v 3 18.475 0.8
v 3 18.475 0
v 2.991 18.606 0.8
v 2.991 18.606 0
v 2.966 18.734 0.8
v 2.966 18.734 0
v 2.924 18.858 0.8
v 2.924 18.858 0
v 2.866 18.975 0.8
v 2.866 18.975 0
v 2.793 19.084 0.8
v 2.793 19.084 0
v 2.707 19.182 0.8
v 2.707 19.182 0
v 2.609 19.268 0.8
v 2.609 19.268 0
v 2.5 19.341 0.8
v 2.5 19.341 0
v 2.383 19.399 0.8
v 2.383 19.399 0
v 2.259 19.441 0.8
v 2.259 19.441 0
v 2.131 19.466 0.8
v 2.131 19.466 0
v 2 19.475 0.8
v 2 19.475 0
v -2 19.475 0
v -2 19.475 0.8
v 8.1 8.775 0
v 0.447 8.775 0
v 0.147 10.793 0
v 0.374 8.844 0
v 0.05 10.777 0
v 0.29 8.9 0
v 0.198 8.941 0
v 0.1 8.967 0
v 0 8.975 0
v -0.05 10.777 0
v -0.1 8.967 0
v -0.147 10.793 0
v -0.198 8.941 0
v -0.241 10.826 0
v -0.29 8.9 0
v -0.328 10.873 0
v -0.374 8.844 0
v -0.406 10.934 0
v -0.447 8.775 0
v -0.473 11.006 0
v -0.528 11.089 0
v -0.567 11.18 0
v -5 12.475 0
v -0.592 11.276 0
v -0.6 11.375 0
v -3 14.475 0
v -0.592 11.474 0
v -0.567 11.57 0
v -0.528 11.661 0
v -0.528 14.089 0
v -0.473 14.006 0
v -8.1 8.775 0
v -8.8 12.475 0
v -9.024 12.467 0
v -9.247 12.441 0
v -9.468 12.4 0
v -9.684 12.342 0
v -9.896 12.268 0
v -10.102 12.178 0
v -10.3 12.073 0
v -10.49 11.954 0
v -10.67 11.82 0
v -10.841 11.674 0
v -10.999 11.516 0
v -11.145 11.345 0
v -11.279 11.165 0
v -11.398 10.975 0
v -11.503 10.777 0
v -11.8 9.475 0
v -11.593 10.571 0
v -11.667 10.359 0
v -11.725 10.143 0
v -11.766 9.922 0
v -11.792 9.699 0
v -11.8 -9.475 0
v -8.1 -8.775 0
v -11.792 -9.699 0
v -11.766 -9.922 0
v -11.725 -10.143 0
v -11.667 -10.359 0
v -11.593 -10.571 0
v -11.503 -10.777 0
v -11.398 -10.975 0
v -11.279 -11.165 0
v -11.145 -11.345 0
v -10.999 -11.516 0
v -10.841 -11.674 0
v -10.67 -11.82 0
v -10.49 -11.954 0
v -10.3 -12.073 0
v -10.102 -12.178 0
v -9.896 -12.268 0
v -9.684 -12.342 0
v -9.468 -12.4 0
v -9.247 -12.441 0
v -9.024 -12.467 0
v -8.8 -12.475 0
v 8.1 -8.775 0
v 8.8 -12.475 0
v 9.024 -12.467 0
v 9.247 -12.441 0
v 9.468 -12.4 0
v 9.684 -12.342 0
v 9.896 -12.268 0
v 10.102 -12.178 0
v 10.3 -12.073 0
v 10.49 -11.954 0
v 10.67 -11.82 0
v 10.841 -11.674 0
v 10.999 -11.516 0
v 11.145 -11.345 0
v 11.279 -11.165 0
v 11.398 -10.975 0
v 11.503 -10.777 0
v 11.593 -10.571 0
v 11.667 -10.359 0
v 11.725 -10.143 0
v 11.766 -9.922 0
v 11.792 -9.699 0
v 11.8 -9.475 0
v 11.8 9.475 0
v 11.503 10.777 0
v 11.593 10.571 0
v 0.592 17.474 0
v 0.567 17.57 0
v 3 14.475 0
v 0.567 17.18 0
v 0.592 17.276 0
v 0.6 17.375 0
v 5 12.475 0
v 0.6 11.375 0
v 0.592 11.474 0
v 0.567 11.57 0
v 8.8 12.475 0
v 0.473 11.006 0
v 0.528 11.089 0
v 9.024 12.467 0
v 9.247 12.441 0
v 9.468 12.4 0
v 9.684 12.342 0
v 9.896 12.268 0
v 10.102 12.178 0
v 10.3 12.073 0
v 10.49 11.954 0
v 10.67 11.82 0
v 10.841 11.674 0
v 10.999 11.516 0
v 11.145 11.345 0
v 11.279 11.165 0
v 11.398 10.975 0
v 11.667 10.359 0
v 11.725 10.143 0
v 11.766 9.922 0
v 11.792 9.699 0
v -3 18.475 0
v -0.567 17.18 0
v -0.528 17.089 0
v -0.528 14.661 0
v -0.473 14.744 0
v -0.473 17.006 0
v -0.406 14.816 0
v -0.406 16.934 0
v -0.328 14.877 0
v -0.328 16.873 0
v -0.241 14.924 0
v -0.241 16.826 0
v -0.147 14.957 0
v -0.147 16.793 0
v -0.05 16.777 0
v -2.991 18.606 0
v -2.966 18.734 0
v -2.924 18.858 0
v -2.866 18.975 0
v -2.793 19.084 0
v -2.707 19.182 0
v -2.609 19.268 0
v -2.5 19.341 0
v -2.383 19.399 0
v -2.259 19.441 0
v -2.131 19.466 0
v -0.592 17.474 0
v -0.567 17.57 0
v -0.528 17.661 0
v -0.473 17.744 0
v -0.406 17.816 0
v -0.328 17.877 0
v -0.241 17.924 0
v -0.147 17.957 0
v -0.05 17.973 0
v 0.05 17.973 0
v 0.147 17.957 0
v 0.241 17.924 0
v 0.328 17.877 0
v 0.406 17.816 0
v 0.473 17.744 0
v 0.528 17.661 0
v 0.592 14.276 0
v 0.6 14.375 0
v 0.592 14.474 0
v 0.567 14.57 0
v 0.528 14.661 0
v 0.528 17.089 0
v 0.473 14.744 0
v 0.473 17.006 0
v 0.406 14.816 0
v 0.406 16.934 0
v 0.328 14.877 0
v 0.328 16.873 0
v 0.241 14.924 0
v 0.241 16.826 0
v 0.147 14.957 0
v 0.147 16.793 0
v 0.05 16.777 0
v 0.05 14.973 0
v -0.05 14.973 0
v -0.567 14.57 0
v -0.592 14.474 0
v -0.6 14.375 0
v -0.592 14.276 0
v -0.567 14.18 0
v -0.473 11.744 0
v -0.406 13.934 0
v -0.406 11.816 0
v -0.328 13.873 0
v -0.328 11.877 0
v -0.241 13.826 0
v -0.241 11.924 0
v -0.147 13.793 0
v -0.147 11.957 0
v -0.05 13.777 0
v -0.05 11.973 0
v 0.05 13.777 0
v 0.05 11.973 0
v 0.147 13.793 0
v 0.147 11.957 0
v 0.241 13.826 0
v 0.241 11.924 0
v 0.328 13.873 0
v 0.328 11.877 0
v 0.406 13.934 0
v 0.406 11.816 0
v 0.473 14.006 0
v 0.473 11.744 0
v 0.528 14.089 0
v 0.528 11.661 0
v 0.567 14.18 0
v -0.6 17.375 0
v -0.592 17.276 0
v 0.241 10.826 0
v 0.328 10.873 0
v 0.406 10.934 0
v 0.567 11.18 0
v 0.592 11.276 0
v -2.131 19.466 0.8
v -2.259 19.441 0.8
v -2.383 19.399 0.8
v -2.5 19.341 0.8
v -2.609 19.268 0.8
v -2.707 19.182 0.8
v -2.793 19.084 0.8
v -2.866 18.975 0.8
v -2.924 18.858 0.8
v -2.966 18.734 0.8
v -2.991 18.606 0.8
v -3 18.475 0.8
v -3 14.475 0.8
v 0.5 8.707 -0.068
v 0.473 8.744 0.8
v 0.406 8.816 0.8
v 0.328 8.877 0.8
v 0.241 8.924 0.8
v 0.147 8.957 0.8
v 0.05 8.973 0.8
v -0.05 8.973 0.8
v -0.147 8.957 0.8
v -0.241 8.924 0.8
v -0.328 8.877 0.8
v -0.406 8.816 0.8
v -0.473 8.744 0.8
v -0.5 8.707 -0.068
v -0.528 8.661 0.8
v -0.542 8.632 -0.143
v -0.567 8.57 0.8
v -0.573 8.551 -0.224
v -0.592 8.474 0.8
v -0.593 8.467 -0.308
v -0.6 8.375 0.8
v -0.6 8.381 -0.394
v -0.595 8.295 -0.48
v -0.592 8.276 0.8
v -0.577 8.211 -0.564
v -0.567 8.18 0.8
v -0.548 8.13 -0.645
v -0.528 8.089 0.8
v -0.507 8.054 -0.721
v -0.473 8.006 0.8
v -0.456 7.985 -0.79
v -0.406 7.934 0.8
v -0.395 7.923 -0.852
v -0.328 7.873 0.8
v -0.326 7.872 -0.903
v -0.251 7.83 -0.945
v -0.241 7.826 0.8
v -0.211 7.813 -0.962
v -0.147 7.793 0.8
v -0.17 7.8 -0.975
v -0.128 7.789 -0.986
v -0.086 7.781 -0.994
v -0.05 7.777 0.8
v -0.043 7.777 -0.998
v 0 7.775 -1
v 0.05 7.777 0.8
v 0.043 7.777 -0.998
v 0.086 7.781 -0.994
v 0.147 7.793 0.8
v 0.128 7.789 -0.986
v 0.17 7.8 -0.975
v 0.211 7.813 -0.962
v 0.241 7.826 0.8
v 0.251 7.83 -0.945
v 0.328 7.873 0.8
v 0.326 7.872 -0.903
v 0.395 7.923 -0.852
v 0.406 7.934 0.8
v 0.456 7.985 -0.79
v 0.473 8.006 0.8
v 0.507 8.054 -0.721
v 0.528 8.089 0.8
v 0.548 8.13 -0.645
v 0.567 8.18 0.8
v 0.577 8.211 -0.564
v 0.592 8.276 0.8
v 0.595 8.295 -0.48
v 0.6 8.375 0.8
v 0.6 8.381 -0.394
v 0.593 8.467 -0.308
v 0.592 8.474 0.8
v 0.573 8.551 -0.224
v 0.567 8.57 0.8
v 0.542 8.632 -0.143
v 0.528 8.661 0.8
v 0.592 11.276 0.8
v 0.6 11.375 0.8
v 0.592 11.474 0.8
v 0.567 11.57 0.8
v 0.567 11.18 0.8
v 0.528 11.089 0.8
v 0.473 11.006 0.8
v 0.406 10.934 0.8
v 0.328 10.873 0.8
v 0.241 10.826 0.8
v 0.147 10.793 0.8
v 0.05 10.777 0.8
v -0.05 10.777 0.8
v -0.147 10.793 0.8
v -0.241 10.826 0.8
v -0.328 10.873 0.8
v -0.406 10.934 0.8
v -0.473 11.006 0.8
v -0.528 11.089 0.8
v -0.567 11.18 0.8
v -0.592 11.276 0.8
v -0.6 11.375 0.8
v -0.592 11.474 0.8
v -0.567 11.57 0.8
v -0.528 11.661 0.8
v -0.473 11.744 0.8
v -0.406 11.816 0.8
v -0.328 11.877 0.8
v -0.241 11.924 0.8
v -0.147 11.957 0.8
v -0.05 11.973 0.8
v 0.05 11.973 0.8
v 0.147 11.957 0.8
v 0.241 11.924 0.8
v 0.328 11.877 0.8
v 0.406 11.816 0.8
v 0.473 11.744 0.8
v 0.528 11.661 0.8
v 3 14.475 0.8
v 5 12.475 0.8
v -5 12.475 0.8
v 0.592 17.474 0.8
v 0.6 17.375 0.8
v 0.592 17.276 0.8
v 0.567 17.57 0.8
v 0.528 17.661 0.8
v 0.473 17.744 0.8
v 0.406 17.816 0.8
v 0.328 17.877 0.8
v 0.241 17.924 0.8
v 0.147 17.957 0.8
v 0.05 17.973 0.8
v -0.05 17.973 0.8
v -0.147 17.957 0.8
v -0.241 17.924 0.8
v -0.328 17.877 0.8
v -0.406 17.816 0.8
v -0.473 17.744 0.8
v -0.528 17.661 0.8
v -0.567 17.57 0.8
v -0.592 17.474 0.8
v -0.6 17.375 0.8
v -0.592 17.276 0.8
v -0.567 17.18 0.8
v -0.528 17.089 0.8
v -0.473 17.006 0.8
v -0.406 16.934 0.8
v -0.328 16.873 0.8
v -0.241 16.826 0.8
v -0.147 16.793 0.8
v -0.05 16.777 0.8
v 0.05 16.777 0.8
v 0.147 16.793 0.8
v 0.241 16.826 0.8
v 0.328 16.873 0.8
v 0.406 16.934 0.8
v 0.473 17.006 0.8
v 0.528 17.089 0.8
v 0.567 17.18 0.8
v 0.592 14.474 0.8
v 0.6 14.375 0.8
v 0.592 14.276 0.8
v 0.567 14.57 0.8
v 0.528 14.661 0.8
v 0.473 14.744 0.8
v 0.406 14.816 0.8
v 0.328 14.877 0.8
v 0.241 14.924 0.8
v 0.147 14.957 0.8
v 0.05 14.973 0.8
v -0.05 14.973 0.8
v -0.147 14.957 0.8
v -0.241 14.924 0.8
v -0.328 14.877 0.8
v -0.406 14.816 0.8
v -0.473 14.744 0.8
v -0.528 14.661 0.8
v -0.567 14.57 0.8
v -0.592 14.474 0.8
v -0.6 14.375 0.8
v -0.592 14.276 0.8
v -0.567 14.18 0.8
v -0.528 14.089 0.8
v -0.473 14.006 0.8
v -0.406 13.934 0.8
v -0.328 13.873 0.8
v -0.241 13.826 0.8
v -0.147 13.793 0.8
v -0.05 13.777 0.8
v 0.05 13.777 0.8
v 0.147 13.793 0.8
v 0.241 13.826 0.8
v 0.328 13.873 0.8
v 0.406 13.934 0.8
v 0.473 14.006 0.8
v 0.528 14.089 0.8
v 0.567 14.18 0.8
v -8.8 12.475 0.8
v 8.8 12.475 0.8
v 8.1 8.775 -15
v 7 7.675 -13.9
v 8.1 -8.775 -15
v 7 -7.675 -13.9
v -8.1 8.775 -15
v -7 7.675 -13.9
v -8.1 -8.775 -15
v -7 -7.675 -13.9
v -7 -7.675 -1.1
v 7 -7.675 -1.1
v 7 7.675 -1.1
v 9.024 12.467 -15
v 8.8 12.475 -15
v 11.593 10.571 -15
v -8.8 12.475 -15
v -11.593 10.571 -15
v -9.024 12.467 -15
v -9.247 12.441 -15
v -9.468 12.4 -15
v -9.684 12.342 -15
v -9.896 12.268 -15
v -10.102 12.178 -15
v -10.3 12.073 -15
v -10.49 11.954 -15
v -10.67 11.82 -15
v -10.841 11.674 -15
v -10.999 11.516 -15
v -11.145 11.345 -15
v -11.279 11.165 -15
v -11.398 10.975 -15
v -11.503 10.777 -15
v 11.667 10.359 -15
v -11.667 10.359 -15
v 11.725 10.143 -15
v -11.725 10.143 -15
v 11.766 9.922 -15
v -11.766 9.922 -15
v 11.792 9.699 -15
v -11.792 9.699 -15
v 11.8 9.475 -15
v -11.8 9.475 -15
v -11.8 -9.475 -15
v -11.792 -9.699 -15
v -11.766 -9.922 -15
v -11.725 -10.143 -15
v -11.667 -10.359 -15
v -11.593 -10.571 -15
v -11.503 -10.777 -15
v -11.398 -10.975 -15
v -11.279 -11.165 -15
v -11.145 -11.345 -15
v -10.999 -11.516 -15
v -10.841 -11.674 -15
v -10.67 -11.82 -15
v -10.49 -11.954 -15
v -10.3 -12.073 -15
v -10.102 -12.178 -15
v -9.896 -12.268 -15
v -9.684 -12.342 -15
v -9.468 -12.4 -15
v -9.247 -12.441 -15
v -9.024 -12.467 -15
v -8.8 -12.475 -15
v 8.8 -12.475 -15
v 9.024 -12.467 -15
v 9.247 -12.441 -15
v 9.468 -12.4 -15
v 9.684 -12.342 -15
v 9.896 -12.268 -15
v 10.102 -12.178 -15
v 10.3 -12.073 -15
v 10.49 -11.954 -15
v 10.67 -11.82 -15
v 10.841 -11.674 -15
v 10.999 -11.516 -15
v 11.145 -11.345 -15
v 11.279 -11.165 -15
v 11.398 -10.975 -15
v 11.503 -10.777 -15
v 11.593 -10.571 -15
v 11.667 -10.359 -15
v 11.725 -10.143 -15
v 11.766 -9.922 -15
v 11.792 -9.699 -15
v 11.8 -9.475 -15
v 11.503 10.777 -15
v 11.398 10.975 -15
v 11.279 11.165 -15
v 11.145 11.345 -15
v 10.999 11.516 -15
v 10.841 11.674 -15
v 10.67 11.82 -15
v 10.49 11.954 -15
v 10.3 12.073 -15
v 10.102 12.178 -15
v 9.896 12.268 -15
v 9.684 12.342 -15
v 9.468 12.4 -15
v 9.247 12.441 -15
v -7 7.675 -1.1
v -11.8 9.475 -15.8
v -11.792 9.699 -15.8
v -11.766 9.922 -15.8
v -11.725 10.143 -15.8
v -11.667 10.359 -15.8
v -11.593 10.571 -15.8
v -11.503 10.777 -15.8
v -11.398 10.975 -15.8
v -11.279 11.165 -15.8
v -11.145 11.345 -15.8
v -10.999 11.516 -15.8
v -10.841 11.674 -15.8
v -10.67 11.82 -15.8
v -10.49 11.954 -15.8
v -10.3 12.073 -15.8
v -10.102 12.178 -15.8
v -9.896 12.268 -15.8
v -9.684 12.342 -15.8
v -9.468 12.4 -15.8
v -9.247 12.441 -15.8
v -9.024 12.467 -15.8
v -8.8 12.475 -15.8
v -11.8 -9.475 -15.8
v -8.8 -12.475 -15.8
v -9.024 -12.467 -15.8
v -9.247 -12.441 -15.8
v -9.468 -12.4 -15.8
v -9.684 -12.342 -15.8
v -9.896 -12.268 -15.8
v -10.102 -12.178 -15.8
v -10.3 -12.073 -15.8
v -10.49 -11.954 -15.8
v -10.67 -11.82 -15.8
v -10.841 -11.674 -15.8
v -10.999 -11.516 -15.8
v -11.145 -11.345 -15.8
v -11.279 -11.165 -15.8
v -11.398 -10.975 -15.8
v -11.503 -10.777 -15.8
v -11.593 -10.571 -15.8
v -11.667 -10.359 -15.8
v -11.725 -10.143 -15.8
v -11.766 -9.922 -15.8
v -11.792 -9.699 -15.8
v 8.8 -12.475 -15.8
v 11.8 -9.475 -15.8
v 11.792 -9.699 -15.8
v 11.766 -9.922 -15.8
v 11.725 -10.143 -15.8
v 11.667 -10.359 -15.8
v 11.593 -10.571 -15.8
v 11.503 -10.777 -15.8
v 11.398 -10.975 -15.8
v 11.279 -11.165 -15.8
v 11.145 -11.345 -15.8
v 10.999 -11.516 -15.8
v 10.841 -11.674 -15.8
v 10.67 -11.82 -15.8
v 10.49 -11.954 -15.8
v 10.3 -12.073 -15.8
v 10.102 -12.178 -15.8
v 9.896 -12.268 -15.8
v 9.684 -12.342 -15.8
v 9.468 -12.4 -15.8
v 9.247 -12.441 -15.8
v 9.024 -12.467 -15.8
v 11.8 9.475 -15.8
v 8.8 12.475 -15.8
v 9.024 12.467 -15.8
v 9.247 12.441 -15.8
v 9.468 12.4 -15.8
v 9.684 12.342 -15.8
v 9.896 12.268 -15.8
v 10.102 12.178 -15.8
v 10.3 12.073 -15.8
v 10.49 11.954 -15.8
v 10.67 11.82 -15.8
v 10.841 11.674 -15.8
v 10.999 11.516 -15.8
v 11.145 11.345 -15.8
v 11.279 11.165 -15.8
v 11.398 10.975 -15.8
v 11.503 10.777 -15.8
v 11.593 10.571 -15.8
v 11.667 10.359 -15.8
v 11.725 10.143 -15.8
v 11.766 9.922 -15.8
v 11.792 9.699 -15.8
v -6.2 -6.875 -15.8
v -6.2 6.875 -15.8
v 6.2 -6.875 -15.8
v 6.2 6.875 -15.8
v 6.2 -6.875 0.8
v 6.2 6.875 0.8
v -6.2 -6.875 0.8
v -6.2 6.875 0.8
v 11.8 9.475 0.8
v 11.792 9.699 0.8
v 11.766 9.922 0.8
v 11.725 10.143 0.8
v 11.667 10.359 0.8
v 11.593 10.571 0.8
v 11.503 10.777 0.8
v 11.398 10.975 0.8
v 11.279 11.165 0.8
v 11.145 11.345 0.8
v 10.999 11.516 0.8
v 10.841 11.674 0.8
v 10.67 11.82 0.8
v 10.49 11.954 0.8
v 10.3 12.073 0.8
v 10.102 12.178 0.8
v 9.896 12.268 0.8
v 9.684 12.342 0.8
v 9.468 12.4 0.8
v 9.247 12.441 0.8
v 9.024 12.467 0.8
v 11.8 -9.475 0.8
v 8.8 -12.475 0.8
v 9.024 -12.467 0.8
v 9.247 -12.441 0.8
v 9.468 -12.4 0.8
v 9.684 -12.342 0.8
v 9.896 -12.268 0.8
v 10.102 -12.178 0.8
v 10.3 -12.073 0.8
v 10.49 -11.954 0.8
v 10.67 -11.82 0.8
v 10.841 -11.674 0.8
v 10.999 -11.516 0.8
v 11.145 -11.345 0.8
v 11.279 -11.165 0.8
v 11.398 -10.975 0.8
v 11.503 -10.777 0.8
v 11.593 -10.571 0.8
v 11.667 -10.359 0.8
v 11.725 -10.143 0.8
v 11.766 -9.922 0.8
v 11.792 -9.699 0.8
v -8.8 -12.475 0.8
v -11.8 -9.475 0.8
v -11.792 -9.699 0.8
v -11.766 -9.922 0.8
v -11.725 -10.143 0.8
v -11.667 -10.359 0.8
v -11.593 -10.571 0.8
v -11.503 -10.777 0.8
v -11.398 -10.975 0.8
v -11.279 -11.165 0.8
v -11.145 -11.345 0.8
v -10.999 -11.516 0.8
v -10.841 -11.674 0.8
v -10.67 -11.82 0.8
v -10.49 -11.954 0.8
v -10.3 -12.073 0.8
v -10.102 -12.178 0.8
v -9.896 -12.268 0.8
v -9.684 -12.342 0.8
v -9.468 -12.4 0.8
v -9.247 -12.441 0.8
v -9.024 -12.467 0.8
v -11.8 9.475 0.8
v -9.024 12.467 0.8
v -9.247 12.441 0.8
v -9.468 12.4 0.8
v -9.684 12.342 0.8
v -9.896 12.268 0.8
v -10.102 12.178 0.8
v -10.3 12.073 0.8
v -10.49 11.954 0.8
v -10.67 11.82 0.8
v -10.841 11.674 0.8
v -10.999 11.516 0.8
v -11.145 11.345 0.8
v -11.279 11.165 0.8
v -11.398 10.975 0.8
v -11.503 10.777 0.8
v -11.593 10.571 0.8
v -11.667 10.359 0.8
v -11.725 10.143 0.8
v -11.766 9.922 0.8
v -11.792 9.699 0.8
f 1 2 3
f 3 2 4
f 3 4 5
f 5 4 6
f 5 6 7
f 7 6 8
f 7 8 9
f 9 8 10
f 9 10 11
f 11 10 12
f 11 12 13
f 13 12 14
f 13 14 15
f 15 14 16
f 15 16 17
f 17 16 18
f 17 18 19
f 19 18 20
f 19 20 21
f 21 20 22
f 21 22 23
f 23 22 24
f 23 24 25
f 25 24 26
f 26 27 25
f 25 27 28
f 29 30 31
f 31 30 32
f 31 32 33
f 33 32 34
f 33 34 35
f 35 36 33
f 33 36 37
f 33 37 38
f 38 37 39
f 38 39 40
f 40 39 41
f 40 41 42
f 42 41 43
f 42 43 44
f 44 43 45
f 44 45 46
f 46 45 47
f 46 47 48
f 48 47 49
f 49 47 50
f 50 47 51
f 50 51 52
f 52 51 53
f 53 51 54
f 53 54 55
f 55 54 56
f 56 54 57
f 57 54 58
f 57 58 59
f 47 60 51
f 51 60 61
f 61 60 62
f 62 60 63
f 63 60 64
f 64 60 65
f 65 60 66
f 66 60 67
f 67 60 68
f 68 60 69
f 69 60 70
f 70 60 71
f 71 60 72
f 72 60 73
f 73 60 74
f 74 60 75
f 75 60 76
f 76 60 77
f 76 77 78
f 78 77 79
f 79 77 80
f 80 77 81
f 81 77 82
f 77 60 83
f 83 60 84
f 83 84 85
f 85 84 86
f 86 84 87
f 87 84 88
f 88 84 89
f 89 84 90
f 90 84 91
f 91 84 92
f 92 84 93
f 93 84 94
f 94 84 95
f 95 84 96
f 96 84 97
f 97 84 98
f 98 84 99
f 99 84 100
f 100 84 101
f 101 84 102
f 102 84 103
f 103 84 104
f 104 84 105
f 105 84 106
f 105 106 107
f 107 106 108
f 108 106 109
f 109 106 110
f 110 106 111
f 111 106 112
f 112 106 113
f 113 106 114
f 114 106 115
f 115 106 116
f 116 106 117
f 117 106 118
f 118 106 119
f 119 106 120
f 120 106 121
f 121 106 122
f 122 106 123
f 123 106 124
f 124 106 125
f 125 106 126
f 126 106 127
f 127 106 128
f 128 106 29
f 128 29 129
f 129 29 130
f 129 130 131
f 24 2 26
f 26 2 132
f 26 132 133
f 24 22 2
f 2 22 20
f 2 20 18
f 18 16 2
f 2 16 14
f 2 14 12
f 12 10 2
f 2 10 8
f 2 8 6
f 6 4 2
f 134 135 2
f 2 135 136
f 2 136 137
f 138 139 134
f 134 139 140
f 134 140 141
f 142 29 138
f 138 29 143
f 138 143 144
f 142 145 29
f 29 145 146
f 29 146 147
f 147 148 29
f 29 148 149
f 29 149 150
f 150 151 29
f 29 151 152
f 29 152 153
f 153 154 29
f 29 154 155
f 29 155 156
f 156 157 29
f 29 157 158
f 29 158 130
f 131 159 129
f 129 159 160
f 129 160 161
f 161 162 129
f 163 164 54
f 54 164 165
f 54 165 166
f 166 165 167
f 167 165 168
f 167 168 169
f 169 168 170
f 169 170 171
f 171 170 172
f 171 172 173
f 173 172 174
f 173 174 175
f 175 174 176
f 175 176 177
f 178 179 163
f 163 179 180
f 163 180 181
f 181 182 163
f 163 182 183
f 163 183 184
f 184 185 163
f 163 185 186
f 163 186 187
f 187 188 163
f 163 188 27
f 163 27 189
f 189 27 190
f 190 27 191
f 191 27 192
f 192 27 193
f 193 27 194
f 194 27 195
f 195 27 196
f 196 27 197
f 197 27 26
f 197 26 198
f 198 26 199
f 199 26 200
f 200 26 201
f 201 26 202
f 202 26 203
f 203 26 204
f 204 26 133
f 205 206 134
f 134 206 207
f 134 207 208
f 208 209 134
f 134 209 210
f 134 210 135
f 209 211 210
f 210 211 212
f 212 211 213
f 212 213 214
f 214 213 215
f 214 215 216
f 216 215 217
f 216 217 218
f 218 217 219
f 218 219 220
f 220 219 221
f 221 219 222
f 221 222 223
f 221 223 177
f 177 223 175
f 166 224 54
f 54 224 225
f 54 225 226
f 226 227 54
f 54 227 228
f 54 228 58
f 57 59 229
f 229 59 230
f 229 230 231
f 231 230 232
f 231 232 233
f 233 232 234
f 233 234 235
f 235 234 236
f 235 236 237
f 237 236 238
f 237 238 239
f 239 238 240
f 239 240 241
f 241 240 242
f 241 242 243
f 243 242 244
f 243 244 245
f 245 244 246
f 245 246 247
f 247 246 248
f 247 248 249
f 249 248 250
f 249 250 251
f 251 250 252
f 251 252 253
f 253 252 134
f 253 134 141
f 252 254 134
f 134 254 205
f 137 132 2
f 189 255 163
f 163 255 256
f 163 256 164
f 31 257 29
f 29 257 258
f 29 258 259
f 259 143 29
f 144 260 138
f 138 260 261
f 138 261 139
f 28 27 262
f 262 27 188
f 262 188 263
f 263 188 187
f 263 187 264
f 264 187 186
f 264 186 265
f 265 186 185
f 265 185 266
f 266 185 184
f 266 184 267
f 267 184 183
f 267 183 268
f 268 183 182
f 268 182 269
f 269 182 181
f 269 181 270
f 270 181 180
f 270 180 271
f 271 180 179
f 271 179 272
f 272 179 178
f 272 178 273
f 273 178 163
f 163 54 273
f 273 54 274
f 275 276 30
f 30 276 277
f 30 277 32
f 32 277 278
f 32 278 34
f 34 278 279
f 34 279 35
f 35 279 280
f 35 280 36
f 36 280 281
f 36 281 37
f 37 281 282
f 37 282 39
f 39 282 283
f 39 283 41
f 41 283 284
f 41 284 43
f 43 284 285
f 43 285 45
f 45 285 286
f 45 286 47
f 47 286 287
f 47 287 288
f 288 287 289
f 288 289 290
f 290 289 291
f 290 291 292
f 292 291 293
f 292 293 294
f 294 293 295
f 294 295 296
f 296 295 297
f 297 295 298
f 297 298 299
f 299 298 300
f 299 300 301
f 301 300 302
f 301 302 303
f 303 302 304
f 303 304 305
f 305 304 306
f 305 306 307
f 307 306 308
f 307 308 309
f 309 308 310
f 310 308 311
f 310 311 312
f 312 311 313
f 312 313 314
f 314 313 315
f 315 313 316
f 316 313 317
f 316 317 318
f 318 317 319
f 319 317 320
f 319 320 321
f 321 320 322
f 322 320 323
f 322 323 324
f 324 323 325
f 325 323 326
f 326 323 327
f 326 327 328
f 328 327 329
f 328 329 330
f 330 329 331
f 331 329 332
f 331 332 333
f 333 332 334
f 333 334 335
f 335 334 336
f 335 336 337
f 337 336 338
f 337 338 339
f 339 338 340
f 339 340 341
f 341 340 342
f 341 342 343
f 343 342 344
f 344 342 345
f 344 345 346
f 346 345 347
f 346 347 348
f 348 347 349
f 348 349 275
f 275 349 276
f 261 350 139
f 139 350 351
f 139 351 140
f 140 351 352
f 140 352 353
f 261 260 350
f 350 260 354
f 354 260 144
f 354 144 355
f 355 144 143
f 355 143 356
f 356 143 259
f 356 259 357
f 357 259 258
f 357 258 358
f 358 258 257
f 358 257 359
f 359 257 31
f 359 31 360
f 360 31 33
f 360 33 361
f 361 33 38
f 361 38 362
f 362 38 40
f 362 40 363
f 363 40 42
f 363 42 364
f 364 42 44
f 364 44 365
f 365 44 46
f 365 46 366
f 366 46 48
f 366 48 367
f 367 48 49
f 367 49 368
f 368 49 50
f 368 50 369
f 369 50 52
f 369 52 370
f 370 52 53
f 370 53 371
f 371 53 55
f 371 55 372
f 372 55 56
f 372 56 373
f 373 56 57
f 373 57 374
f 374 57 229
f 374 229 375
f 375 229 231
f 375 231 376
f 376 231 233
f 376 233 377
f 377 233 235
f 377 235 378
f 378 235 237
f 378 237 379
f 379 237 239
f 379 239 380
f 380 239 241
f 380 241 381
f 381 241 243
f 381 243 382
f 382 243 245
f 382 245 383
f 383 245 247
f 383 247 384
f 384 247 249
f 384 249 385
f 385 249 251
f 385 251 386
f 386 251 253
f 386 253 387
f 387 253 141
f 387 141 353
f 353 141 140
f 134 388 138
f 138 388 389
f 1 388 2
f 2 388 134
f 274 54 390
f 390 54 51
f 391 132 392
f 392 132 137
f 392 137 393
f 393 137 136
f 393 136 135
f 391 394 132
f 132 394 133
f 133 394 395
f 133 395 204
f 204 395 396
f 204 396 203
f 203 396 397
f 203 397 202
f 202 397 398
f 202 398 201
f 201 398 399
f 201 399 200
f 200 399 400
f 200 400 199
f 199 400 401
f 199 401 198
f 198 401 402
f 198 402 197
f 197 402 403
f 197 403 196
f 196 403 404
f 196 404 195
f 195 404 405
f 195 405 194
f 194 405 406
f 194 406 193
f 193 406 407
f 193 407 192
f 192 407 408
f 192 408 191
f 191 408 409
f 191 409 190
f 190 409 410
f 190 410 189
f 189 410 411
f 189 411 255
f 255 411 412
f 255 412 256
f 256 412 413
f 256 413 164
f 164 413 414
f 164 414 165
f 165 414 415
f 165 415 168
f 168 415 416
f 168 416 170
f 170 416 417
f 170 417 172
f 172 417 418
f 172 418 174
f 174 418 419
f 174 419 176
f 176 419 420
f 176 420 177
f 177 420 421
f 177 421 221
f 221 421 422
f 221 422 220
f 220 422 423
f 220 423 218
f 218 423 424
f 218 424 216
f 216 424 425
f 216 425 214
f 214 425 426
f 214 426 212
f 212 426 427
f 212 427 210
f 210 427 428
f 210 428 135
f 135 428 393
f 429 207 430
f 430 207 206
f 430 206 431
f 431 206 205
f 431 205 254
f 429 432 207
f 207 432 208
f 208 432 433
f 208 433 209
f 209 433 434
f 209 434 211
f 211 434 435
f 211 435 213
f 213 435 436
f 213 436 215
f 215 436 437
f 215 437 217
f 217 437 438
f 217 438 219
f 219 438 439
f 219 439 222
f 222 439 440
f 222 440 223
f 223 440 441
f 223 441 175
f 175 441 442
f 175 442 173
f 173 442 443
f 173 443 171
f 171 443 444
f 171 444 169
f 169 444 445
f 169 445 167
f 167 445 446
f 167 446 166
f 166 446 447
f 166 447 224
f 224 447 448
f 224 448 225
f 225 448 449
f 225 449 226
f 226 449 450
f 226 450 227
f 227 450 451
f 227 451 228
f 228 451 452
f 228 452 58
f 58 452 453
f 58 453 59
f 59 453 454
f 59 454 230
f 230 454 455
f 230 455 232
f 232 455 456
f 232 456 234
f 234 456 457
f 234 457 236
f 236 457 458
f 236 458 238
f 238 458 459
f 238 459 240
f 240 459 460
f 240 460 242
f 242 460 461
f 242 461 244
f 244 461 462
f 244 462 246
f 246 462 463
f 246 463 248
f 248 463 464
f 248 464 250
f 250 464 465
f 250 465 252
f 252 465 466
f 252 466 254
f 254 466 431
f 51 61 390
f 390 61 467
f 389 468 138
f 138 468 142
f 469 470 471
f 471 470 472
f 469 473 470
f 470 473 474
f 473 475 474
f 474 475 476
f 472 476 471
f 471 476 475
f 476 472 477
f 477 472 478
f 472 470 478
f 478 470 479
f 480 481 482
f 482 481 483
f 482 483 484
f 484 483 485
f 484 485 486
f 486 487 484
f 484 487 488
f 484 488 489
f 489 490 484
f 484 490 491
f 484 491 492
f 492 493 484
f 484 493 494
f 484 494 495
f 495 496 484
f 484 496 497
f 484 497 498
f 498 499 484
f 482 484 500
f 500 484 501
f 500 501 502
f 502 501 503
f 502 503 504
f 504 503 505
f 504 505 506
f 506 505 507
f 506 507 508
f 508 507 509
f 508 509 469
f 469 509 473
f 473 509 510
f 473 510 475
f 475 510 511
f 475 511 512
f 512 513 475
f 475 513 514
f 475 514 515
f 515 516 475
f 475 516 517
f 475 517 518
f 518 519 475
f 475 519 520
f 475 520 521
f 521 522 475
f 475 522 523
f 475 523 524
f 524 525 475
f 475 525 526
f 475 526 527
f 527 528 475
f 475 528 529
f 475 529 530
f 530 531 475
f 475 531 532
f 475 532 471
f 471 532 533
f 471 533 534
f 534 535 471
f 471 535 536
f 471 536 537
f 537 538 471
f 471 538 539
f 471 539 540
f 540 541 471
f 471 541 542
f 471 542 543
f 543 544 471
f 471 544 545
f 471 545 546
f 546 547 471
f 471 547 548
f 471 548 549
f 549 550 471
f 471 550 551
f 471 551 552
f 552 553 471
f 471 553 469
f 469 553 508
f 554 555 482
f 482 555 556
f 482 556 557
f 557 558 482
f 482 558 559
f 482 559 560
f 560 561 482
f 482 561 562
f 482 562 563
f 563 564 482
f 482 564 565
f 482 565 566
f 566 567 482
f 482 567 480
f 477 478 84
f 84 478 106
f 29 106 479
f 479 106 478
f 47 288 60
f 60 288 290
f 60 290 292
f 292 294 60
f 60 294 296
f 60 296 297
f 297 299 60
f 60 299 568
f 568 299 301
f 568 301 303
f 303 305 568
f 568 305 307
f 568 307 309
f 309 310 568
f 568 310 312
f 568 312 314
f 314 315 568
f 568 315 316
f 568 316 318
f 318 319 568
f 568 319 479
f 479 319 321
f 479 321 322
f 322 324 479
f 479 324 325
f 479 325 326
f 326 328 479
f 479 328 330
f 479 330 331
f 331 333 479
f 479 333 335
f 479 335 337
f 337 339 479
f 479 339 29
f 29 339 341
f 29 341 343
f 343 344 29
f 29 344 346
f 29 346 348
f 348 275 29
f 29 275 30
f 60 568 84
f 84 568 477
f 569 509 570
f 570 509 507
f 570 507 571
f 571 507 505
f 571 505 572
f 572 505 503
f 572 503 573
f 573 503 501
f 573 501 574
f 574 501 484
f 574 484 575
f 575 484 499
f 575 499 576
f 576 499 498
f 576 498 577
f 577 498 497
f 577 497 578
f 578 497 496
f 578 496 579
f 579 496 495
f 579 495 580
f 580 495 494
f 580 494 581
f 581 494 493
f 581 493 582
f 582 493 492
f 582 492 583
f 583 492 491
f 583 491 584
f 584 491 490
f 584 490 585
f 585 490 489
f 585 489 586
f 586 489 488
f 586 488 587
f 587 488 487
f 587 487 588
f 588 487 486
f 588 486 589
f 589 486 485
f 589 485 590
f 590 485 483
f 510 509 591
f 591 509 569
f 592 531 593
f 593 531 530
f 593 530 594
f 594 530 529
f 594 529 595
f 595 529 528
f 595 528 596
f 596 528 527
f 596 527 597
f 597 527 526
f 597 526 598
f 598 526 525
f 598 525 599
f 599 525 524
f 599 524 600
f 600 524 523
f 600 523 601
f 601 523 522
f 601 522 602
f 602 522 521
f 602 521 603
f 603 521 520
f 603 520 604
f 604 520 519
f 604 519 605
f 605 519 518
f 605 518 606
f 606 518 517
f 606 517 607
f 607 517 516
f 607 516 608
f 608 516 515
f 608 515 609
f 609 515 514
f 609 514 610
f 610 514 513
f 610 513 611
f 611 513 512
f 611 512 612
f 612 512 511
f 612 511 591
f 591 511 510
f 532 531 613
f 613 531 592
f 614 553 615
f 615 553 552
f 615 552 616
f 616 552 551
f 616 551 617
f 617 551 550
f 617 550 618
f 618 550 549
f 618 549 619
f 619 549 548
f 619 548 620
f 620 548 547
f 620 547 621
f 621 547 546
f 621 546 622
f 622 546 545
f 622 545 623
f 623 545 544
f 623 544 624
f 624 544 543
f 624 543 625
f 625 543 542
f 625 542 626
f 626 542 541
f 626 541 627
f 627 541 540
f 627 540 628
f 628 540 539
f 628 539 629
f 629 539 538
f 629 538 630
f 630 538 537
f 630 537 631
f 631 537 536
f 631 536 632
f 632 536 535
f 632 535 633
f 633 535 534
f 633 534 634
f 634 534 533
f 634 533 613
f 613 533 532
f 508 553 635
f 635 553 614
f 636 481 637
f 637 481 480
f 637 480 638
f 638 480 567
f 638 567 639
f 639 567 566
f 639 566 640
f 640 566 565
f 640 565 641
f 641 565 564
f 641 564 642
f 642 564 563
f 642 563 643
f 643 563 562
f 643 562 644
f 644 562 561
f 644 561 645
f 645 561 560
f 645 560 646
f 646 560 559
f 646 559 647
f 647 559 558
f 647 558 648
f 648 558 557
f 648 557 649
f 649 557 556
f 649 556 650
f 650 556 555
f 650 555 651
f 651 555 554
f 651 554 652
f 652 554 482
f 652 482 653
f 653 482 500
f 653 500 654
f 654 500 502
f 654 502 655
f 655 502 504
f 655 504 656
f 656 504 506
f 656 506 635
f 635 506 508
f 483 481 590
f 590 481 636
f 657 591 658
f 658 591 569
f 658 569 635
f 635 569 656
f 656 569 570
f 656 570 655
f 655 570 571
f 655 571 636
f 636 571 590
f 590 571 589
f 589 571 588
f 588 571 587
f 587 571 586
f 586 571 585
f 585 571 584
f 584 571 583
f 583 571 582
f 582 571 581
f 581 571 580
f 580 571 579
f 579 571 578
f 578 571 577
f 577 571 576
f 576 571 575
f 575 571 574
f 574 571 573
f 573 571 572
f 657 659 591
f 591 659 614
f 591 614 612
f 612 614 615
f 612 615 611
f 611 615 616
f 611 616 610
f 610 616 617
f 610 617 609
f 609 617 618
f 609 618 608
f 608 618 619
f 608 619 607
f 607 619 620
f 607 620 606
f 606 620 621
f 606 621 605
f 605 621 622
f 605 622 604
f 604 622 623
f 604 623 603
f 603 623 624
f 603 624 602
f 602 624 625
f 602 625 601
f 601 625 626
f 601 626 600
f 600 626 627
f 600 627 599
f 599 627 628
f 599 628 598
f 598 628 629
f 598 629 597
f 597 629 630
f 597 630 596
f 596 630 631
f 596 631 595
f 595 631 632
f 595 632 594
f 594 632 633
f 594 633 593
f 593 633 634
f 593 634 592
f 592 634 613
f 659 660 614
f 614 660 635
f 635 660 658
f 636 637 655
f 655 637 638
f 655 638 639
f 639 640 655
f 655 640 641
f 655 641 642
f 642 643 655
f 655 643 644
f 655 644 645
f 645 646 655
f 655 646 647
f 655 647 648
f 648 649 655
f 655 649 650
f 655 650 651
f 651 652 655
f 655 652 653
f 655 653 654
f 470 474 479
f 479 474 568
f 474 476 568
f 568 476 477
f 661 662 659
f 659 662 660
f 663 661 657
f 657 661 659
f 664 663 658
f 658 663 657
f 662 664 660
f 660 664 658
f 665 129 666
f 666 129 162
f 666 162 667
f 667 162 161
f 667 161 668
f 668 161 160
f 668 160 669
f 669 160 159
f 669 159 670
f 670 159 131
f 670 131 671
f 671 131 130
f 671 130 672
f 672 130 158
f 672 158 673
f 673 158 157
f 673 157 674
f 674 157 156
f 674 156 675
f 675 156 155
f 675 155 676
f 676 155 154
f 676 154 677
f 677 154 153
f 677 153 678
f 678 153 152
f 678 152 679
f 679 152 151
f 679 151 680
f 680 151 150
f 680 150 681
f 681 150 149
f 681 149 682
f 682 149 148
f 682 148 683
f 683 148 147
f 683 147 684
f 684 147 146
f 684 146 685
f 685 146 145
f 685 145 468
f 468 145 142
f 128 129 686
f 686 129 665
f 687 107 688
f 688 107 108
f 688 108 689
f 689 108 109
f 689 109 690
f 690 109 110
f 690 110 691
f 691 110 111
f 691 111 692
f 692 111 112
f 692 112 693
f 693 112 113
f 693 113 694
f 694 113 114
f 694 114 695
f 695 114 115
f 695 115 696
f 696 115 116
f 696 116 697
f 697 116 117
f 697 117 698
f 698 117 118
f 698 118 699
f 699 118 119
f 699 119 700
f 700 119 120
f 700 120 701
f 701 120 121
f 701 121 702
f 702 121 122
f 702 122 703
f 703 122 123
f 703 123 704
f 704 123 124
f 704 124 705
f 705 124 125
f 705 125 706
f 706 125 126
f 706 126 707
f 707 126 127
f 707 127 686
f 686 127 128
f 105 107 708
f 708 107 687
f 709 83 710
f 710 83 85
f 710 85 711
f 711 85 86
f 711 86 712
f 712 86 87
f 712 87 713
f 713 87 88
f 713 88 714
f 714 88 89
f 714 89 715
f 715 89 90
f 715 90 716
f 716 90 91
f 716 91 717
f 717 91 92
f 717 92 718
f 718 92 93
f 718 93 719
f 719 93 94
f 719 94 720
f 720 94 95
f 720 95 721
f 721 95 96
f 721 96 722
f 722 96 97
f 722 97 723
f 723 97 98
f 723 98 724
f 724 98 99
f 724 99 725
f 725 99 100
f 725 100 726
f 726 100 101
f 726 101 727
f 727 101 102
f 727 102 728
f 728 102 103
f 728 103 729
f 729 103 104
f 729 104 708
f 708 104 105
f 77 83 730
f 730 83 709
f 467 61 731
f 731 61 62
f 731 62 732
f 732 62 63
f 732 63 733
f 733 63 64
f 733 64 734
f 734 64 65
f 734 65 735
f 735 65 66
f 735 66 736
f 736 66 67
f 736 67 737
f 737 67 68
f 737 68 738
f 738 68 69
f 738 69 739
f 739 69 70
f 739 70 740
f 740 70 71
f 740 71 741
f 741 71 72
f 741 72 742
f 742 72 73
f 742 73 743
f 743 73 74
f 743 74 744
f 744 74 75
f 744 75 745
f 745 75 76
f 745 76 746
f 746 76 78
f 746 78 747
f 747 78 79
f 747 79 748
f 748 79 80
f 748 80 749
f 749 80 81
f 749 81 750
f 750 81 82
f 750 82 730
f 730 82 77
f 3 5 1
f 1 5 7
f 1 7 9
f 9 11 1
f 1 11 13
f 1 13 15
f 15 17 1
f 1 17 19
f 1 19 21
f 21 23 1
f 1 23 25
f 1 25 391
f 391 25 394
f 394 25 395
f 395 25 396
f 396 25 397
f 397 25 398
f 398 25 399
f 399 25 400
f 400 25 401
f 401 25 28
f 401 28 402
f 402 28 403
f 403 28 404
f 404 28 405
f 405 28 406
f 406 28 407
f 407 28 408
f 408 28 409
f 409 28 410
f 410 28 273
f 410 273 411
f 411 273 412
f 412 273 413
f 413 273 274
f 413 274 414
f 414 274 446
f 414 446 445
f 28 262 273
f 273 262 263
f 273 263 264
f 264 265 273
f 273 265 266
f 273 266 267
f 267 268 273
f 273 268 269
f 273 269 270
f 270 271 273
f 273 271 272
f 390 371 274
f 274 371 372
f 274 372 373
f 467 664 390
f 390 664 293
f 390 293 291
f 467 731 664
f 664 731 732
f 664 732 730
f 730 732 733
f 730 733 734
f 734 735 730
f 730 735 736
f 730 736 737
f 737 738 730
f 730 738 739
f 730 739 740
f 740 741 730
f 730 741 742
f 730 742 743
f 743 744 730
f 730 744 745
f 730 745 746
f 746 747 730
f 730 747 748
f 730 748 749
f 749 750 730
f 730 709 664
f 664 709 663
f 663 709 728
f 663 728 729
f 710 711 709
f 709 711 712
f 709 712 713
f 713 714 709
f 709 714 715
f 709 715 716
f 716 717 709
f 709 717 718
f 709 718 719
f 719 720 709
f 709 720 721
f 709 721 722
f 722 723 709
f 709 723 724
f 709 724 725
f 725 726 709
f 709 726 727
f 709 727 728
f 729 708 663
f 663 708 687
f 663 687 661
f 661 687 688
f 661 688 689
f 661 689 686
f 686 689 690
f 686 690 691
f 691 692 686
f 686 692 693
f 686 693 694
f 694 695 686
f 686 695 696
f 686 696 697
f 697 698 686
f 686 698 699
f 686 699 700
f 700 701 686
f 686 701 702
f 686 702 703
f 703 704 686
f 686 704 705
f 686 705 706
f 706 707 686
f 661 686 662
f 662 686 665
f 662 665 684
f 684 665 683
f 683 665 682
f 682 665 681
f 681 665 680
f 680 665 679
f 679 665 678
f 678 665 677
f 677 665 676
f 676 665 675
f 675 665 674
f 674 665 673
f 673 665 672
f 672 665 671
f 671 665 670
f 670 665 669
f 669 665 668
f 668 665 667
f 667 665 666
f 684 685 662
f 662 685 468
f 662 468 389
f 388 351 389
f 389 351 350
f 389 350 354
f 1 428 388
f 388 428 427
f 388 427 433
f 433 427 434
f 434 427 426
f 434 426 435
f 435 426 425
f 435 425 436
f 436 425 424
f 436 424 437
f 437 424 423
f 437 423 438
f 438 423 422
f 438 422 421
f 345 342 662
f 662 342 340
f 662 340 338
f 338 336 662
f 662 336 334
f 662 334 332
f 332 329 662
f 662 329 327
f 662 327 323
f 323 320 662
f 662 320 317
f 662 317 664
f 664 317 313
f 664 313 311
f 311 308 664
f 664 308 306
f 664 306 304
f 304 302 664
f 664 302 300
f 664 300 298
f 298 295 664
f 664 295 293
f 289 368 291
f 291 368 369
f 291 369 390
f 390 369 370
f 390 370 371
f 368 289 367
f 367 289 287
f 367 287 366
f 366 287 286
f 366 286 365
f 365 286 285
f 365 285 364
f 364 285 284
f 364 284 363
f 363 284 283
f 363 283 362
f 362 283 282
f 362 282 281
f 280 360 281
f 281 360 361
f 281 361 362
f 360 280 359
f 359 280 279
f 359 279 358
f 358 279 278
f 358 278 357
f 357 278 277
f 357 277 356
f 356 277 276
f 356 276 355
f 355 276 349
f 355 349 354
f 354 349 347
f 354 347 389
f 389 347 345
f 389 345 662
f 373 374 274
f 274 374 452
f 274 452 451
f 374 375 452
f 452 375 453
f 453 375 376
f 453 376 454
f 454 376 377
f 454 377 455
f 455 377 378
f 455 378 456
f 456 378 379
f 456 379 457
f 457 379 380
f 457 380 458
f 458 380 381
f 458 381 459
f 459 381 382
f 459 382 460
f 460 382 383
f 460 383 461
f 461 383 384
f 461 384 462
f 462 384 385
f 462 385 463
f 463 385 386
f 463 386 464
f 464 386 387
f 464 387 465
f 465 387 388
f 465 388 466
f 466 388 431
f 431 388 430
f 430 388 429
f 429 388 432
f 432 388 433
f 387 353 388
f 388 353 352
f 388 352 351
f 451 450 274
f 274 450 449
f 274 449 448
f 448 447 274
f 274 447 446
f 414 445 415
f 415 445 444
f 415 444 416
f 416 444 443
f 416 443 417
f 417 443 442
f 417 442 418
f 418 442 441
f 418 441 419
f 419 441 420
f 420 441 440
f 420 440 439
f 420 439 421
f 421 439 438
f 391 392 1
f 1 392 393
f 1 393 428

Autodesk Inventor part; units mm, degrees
ref_plane "YZ Plane" through (0, 0, 0) normal (1, 0, 0) x (0, 1, 0)
ref_plane "XZ Plane" through (0, 0, 0) normal (0, 1, 0) x (-1, 0, 0)
ref_plane "XY Plane" through (0, 0, 0) normal (0, 0, 1) x (1, 0, 0)
sketch "Sketch1" plane through (0, 0, 0) normal (0, 0, 1) x (1, 0, 0)
  line L0 (-6.2, 6.875) -> (6.2, 6.875)
  line L1 (6.2, 6.875) -> (6.2, -6.875)
  line L2 (6.2, -6.875) -> (-6.2, -6.875)
  line L3 (-6.2, -6.875) -> (-6.2, 6.875)
  line L4 (8.8, 12.475) -> (-8.8, 12.475)
  line L5 (-11.8, 9.475) -> (-11.8, -9.475)
  line L6 (-8.8, -12.475) -> (8.8, -12.475)
  line L7 (11.8, -9.475) -> (11.8, 9.475)
  arc A0 (-8.8, 12.475) -> (-11.8, 9.475) centre (-8.8, 9.475) ccw
  arc A1 (11.8, 9.475) -> (8.8, 12.475) centre (8.8, 9.475) ccw
  arc A2 (8.8, -12.475) -> (11.8, -9.475) centre (8.8, -9.475) ccw
  arc A3 (-11.8, -9.475) -> (-8.8, -12.475) centre (-8.8, -9.475) ccw
  point P0 (0, 0)
  dimension "d0" = 12.4
  dimension "d1" = 13.75
  dimension "d2" = 5.6
  dimension "d3" = 3
  dimension "d4" = 6.875
  dimension "d5" = 6.2
  dimension "d16" = 23.6
  dimension "d17" = 24.95
extrude "Extrusion1" add sketch "Sketch1" along normal blind 0.8
sketch "Sketch3" plane through (0, 0, 0) normal (0, 0, -1) x (-1, 0, 0)
  line L0 (-6.2, -6.875) -> (-6.2, 6.875) projected
  line L1 (-6.2, 6.875) -> (6.2, 6.875) projected
  line L2 (6.2, 6.875) -> (6.2, -6.875) projected
  line L3 (6.2, -6.875) -> (-6.2, -6.875) projected
  line L4 (8.8, 12.475) -> (-8.8, 12.475) projected
  arc A0 (-8.8, 12.475) -> (-11.8, 9.475) centre (-8.8, 9.475) ccw projected
  line L5 (-11.8, 9.475) -> (-11.8, -9.475) projected
  arc A1 (-11.8, -9.475) -> (-8.8, -12.475) centre (-8.8, -9.475) ccw projected
  line L6 (-8.8, -12.475) -> (8.8, -12.475) projected
  arc A2 (8.8, -12.475) -> (11.8, -9.475) centre (8.8, -9.475) ccw projected
  line L7 (11.8, -9.475) -> (11.8, 9.475) projected
  arc A3 (11.8, 9.475) -> (8.8, 12.475) centre (8.8, 9.475) ccw projected
  line L8 (7, -7.675) -> (7, 7.675)
  line L9 (7, 7.675) -> (-7, 7.675)
  line L10 (-7, 7.675) -> (-7, -7.675)
  line L11 (-7, -7.675) -> (7, -7.675)
  point P0 (0, 0)
  dimension "d11" = 0.8
extrude "Extrusion2" add sketch "Sketch3" along normal blind 15 contours L11 L10 L9 L8
sketch "Sketch4" plane through (0, 0, -15) normal (0, 0, -1) x (-1, 0, 0)
  line L0 (7, -7.675) -> (-7, -7.675) projected
  line L1 (-7, -7.675) -> (-7, 7.675) projected
  line L2 (-7, 7.675) -> (7, 7.675) projected
  line L3 (7, 7.675) -> (7, -7.675) projected
  line L4 (8.8, 12.475) -> (-8.8, 12.475) projected
  arc A0 (-8.8, 12.475) -> (-11.8, 9.475) centre (-8.8, 9.475) ccw projected
  line L5 (-11.8, 9.475) -> (-11.8, -9.475) projected
  arc A1 (-11.8, -9.475) -> (-8.8, -12.475) centre (-8.8, -9.475) ccw projected
  line L6 (-8.8, -12.475) -> (8.8, -12.475) projected
  arc A2 (8.8, -12.475) -> (11.8, -9.475) centre (8.8, -9.475) ccw projected
  line L7 (11.8, -9.475) -> (11.8, 9.475) projected
  arc A3 (11.8, 9.475) -> (8.8, 12.475) centre (8.8, 9.475) ccw projected
  line L8 (-6.2, 6.875) -> (6.2, 6.875) projected
  line L9 (6.2, 6.875) -> (6.2, -6.875) projected
  line L10 (6.2, -6.875) -> (-6.2, -6.875) projected
  line L11 (-6.2, -6.875) -> (-6.2, 6.875) projected
  line L12 (7, -7.675) -> (7, 7.675) projected
  line L13 (7, 7.675) -> (-7, 7.675) projected
  line L14 (-7, 7.675) -> (-7, -7.675) projected
  line L15 (-7, -7.675) -> (7, -7.675) projected
  point P0 (0, 0)
extrude "Extrusion3" add sketch "Sketch4" along normal blind 0.8 contours L0 L1 L2 L3 | A3 L7 A2 L6 A1 L5 A0 L4
chamfer "Chamfer1" distance 1.1 angle 45 8 edges at (7, 0, 0) (0, -7.675, 0) (0, 7.675, 0) (-7, 0, 0) (-7, 0, -15) (0, 7.675, -15) (0, -7.675, -15) (7, 0, -15)
sketch "Sketch5" plane through (0, 0, 0.8) normal (0, 0, 1) x (1, 0, 0)
  circle A0 centre (0, 8.375) radius 0.6
  line L0 (-6.2, 6.875) -> (6.2, 6.875) projected
  line L1 (11.8, -9.475) -> (11.8, 9.475) projected
  line L2 (-11.8, 9.475) -> (-11.8, -9.475) projected
  line L3 (6.2, 6.875) -> (6.2, -6.875) projected
  line L4 (6.2, -6.875) -> (-6.2, -6.875) projected
  line L5 (-6.2, -6.875) -> (-6.2, 6.875) projected
  line L6 (-6.2, 6.875) -> (6.2, 6.875) projected
  line L7 (8.8, 12.475) -> (-8.8, 12.475) projected
  arc A1 (-8.8, 12.475) -> (-11.8, 9.475) centre (-8.8, 9.475) ccw projected
  line L8 (-11.8, 9.475) -> (-11.8, -9.475) projected
  arc A2 (-11.8, -9.475) -> (-8.8, -12.475) centre (-8.8, -9.475) ccw projected
  line L9 (-8.8, -12.475) -> (8.8, -12.475) projected
  arc A3 (8.8, -12.475) -> (11.8, -9.475) centre (8.8, -9.475) ccw projected
  line L10 (11.8, -9.475) -> (11.8, 9.475) projected
  arc A4 (11.8, 9.475) -> (8.8, 12.475) centre (8.8, 9.475) ccw projected
  line L11 (-8.8, 12.475) -> (8.8, 12.475) projected
  line L12 (3, 12.475) -> (-3, 12.475)
  line L13 (-3, 12.475) -> (-3, 19.475)
  line L14 (-3, 19.475) -> (3, 19.475)
  line L15 (3, 19.475) -> (3, 12.475)
  circle A5 centre (0, 11.375) radius 0.6
  circle A6 centre (0, 14.375) radius 0.6
  circle A7 centre (0, 17.375) radius 0.6
  point P0 (0, 0)
  dimension "d21" = 1.2
  dimension "d22" = 1.5
  dimension "d23" = 11.8
  dimension "d24" = 23.6
  dimension "d27" = 6
  dimension "d28" = 7
  dimension "d29" = 8.8
  dimension "d32" = 3
extrude "Extrusion4" add sketch "Sketch5" against normal up to surface (0.8 mm away) contours L7 L13 L14 L15
chamfer "Chamfer2" distance 2 angle 45 2 edges at (-3, 12.475, 0.4) (3, 12.475, 0.4)
extrude "Extrusion5" cut sketch "Sketch5" against normal blind 10 contours A0 | A5
fillet "Fillet1" radius 1 2 edges at (-3, 19.475, 0.4) (3, 19.475, 0.4)
equation "\"d4\" = 0.5 * d1"
equation "\"d5\" = 0.5 * d0"
equation "\"d23\" = 0.5 * d24"
equation "\"d29\" = -0.5 * d27 + 0.5 * d24"
properties part number "3DP_ABS_Electromagnet_Coil_Holder" material "ABS Plastic"
